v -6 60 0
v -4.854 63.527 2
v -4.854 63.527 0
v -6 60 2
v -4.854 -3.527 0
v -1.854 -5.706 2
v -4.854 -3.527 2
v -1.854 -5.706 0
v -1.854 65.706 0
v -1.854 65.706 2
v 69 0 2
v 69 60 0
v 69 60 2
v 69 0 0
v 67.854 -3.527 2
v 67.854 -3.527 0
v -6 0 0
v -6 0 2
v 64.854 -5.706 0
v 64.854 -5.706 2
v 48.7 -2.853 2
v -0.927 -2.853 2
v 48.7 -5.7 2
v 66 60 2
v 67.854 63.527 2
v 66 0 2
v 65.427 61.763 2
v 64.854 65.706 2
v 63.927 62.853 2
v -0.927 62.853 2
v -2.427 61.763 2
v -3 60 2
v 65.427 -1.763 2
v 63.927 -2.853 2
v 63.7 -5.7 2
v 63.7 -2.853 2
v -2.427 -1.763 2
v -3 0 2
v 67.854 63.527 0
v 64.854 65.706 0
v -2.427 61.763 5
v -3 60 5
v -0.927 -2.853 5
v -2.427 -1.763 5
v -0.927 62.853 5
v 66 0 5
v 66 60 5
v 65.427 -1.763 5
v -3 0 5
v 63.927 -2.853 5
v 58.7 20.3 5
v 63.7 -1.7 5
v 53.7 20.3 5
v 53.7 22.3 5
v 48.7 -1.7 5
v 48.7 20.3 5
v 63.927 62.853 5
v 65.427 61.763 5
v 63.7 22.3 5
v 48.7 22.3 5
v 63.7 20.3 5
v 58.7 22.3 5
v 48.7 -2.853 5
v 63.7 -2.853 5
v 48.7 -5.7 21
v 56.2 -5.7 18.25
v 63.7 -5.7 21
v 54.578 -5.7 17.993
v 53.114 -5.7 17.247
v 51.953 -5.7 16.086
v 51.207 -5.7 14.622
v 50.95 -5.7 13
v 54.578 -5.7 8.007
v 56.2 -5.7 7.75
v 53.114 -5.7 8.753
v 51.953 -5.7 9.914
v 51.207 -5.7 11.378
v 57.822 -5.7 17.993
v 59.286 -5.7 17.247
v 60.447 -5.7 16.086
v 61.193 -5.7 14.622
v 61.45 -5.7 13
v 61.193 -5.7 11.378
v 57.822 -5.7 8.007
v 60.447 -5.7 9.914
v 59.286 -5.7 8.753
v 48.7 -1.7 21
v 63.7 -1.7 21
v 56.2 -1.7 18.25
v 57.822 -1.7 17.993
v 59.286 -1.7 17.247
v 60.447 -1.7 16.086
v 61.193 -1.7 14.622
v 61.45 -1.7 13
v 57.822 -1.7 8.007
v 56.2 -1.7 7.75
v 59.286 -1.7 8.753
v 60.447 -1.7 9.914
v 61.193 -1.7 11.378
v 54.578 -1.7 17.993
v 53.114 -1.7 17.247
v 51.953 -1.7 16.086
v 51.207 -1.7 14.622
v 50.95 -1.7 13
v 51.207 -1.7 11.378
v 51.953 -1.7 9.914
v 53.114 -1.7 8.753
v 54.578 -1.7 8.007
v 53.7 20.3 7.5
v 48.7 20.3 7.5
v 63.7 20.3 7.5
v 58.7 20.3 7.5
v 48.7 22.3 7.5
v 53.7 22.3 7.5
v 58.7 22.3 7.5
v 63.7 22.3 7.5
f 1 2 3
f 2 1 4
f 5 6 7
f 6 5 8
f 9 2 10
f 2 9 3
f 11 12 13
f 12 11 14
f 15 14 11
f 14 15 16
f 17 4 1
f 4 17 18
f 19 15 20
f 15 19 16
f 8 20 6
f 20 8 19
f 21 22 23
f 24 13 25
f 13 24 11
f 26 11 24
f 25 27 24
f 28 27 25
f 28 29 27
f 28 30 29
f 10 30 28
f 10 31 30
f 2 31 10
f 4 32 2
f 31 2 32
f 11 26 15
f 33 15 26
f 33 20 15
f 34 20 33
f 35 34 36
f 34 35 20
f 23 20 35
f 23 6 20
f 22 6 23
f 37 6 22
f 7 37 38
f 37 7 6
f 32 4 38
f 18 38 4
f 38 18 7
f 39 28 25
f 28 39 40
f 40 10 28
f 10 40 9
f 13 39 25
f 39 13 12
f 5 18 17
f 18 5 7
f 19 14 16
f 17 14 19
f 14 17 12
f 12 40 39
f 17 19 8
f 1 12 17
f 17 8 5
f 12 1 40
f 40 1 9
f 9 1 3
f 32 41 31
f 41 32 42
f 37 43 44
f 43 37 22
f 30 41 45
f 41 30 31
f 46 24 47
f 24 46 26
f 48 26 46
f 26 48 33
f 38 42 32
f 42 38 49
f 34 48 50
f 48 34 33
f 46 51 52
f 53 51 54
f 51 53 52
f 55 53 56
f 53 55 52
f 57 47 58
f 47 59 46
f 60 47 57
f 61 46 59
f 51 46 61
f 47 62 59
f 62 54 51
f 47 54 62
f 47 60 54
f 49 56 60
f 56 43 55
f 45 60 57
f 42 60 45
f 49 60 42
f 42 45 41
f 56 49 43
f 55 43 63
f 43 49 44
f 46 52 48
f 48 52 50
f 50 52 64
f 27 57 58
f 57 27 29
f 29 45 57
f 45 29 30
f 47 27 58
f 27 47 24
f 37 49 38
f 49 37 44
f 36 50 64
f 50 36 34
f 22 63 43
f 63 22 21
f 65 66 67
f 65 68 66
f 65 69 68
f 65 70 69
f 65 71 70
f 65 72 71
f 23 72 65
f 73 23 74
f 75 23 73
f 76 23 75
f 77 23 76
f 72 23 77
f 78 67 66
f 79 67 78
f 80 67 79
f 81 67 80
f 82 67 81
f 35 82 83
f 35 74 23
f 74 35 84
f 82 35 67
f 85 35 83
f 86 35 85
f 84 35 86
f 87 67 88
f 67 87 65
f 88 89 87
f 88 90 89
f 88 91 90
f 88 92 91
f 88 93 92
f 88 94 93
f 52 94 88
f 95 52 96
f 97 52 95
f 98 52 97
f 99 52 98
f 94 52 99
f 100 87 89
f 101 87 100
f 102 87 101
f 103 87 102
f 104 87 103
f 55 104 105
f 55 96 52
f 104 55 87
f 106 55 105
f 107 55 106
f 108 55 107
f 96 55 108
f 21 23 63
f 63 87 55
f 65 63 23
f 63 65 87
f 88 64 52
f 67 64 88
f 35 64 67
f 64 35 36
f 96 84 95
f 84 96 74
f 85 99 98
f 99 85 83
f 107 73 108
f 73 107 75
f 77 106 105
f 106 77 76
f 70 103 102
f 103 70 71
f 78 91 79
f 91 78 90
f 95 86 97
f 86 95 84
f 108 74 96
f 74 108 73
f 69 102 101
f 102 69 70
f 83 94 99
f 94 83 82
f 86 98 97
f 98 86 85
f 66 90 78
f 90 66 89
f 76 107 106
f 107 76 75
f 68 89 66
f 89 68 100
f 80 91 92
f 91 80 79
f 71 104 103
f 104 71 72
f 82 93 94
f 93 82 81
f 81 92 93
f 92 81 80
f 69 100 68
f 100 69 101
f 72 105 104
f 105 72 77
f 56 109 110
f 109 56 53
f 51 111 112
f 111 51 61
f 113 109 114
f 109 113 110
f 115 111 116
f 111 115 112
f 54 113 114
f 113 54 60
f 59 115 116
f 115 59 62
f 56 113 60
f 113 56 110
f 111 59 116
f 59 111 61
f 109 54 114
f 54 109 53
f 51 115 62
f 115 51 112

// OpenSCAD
// file: power.scad
POWER_OPENING = 10.5;
WALL_THICKNESS = 4;

module power_snap(power_opening = POWER_OPENING, wall_thickness = WALL_THICKNESS) {
    plate_x = 16;
    plate_y = 15;

    module power_opening() {
        x = wall_thickness;
        
        difference() {
            translate([x/2,0,0]) linear_extrude(height=wall_thickness) square([plate_x + x,plate_y], center=true);
            linear_extrude(height=wall_thickness) circle(d=power_opening, center=true, $fn=20);
        }
    }
    
    module snap_back() {
        snap_height = 2;
        height = 22 + wall_thickness;
        
        translate([(plate_x / 2) + wall_thickness/2,0,0]) 
        difference() {
            translate([-2.5 - wall_thickness / 2,-(plate_y / 2),height]) linear_extrude(height=2) square([2.5, plate_y]);
            translate([-2.5 - wall_thickness / 2,-(plate_y / 6),height]) linear_extrude(height=2) square([2.5, plate_y / 3]);
        }
    }

    power_opening();
    snap_back();
}

// power_snap();
// main file
include <./power.scad>;

$fn=10;

LID_THICKNESS = 2;
NOTCH_THICKNESS = 3;

module lid(lid_z = LID_THICKNESS, notch_z = NOTCH_THICKNESS) {
    pin_widths=63;
    pin_depth=60;
    
    module top() {
        union() {
            linear_extrude(height=lid_z) 
            minkowski() {
                square([pin_widths, pin_depth]);
                circle(6);
            }
            linear_extrude(height=(lid_z + notch_z)) 
            minkowski() {
                square([pin_widths, pin_depth]);
                circle(3);
            }
        }
    }

    module _power_snap() {
        translate([61.9,-13.2, 8]) rotate([-90,90,0]) power_snap();
    }

    union() {
        top();
        translate([ -5.7, 7.5, lid_z + notch_z]) color("blue") _power_snap(wall_thickness = lid_z + notch_z); 
    }

}

lid();

echo(version=version());
